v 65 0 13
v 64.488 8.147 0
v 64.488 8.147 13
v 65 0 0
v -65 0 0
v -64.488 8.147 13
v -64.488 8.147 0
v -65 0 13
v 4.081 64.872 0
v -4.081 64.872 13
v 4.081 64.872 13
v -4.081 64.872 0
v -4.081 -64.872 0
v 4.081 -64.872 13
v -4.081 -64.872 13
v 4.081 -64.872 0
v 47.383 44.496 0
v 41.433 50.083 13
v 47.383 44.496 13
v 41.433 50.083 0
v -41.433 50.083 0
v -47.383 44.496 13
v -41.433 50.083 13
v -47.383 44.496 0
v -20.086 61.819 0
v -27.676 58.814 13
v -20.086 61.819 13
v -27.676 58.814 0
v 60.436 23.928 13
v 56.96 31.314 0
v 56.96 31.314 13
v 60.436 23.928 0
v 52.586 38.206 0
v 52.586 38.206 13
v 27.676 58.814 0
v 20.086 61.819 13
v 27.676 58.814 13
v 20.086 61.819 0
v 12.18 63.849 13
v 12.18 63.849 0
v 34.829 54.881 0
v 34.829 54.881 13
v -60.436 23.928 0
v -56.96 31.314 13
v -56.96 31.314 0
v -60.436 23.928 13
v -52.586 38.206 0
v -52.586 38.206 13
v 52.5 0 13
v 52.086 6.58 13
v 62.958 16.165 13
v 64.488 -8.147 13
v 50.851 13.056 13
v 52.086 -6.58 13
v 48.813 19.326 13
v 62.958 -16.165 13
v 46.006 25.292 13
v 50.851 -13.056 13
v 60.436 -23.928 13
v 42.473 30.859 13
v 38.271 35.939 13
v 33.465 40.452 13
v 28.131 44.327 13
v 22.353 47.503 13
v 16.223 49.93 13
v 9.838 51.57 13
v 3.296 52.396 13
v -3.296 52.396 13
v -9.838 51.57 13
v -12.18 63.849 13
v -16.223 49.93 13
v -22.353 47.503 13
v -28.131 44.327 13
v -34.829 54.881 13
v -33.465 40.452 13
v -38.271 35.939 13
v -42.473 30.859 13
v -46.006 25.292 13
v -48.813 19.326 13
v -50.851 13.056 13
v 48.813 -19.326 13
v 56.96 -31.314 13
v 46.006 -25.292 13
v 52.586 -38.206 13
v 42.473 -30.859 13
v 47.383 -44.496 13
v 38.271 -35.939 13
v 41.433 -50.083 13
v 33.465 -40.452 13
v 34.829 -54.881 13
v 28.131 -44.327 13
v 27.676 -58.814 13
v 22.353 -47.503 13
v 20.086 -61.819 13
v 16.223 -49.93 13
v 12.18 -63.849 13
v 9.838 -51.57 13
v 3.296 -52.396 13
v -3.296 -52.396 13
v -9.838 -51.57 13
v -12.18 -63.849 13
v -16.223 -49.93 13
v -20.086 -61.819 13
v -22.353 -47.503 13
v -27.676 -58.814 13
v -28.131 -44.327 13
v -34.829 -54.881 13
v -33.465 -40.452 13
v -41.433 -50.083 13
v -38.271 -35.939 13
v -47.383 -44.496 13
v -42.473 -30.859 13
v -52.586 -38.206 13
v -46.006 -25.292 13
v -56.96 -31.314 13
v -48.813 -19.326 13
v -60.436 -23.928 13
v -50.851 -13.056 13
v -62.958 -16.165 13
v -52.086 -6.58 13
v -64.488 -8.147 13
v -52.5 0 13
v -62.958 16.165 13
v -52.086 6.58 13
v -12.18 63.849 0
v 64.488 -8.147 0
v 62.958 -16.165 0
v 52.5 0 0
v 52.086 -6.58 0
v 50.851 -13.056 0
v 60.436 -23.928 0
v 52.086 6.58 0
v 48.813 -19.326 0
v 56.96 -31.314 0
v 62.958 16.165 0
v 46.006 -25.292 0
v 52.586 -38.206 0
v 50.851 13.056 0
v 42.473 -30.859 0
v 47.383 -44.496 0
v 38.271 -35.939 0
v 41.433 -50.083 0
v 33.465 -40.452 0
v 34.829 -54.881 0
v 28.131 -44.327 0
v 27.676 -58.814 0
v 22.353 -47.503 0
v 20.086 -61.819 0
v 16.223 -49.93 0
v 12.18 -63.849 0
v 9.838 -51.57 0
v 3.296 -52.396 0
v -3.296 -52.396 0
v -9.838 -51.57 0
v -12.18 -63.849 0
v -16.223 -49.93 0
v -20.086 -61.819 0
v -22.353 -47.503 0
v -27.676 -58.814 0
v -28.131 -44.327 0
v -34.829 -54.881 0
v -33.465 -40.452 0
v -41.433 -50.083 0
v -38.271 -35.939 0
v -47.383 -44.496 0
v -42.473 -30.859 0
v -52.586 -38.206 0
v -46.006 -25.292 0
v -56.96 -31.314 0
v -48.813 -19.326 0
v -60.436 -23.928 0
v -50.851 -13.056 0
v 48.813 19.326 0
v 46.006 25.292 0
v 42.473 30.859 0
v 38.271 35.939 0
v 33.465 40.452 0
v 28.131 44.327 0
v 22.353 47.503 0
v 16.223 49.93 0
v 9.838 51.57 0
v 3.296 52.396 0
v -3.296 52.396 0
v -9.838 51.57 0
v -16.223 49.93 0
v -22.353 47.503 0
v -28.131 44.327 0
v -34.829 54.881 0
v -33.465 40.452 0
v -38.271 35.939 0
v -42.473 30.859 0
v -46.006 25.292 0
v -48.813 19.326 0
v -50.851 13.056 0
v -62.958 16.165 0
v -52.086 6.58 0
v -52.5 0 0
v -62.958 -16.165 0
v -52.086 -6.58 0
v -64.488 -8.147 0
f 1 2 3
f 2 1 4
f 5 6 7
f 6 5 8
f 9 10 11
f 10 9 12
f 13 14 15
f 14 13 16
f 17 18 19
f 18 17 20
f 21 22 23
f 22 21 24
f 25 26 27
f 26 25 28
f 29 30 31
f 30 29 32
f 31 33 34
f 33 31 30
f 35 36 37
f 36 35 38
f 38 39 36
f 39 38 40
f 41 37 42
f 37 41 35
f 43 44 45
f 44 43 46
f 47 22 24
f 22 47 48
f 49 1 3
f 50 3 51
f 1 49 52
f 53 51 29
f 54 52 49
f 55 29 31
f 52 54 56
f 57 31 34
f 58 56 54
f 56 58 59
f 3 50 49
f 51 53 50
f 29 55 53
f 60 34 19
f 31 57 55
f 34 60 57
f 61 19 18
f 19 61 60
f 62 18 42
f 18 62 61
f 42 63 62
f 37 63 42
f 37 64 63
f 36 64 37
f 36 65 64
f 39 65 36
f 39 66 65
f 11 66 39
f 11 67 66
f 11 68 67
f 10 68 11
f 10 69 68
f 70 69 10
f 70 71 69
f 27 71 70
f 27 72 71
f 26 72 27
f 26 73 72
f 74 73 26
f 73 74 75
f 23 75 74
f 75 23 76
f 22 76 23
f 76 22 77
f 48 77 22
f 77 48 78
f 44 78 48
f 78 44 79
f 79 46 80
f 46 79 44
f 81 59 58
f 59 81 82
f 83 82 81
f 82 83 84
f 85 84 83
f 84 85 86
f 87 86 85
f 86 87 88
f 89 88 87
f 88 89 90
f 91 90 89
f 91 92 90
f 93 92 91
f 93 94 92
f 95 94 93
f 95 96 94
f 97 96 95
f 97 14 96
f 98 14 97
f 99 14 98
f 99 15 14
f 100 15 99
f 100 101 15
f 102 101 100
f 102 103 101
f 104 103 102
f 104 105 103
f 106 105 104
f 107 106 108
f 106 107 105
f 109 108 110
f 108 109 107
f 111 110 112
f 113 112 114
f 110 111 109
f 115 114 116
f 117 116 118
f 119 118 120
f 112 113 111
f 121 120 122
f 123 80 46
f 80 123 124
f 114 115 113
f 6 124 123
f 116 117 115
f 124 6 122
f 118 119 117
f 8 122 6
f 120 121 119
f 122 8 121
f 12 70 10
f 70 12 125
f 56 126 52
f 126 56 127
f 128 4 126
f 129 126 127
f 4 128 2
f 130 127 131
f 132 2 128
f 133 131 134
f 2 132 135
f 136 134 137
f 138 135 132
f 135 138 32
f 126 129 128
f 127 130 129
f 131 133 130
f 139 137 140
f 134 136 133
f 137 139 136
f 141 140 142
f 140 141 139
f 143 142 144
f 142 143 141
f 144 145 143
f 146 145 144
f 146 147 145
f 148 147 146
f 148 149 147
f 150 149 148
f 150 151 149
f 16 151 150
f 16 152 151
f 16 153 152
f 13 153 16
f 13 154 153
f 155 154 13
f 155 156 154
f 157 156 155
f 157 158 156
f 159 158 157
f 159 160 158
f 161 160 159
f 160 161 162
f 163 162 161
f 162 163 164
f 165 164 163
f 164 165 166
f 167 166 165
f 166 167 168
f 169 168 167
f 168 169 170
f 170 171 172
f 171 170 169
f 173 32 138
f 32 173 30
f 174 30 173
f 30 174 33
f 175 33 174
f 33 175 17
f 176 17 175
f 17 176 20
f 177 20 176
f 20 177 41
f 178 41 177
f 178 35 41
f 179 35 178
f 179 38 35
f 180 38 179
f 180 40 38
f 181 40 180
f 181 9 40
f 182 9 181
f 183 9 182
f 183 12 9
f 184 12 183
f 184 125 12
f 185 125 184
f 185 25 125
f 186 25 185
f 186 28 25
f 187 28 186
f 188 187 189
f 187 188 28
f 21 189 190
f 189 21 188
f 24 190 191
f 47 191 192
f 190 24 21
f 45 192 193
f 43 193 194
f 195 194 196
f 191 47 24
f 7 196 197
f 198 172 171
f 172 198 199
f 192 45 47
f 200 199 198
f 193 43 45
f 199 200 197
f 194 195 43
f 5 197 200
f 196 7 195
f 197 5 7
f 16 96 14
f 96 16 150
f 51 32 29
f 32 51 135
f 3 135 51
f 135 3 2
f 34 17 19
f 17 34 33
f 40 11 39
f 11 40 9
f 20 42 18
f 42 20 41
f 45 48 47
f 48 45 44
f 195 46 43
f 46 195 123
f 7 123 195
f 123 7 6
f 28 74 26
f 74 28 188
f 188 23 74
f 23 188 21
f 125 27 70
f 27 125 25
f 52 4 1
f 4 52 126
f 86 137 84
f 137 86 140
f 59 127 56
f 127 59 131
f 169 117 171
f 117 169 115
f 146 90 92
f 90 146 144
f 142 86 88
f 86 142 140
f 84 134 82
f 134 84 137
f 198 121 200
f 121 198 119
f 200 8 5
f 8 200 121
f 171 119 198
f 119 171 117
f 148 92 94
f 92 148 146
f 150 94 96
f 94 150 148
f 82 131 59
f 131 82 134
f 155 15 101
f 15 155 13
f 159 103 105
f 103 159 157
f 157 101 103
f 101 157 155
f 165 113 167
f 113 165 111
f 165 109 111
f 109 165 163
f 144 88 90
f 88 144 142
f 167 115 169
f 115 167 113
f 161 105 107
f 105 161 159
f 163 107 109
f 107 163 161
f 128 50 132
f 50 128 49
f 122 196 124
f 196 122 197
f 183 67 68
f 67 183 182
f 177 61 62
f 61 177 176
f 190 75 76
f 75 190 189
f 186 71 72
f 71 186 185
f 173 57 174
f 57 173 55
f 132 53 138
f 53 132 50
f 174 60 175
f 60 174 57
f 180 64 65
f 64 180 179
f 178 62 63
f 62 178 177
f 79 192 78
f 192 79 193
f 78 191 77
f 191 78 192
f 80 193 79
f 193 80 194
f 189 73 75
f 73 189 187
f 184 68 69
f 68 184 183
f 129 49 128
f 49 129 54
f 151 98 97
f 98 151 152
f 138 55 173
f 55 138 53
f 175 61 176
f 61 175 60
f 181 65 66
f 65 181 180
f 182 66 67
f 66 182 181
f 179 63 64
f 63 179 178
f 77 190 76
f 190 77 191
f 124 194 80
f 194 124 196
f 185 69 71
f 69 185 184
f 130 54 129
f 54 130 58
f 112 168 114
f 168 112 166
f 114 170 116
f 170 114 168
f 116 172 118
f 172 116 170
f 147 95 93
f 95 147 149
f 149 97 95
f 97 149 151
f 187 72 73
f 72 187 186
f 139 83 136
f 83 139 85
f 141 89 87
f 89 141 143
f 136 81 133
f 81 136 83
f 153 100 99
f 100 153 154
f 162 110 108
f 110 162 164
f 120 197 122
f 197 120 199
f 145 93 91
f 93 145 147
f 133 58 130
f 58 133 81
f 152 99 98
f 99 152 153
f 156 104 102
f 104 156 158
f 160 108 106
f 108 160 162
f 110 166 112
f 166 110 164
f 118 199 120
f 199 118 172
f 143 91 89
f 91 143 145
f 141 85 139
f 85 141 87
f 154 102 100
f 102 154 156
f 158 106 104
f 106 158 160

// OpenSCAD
$fn = 50;


difference() {
	union() {
		cylinder(h = 13, r = 65.0000000000);
	}
	union() {
		cylinder(h = 13, r = 52.5000000000);
	}
}
